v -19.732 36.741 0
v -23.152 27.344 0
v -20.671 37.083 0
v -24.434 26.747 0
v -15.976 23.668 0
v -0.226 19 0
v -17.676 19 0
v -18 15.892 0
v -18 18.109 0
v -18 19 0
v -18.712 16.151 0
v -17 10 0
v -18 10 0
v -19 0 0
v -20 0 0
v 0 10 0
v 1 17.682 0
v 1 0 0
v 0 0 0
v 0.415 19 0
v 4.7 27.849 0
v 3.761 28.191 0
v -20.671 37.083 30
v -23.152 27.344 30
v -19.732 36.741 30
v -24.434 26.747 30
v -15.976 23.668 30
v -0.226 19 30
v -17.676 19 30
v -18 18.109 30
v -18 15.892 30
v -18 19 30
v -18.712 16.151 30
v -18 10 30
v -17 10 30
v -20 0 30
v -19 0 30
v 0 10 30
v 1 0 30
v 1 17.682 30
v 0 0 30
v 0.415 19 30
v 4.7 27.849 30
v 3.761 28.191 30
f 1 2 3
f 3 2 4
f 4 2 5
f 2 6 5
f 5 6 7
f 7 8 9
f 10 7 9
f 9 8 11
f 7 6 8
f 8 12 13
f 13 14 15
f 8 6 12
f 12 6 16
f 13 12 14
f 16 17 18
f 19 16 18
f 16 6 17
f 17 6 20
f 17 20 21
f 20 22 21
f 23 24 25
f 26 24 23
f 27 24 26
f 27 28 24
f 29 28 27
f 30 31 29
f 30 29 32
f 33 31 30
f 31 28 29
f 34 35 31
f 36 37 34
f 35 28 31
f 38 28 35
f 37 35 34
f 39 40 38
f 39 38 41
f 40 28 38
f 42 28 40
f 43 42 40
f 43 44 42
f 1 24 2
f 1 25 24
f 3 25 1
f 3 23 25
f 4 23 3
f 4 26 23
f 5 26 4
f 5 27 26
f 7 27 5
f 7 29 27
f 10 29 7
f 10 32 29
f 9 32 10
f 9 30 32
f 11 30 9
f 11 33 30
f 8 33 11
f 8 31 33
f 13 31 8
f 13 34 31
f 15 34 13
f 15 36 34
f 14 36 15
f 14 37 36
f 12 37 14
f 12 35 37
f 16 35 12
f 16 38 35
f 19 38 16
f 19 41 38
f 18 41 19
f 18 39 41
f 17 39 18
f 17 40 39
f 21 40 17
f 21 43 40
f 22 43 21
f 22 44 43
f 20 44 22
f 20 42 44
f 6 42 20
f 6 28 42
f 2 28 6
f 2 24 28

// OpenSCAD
/*
The MIT License (MIT)

Copyright (c) 2020 Shinichi Ohki.

Permission is hereby granted, free of charge, to any person obtaining a copy
of this software and associated documentation files (the "Software"), to deal
in the Software without restriction, including without limitation the rights
to use, copy, modify, merge, publish, distribute, sublicense, and/or sell
copies of the Software, and to permit persons to whom the Software is
furnished to do so, subject to the following conditions:

The above copyright notice and this permission notice shall be included in
all copies or substantial portions of the Software.

THE SOFTWARE IS PROVIDED "AS IS", WITHOUT WARRANTY OF ANY KIND, EXPRESS OR
IMPLIED, INCLUDING BUT NOT LIMITED TO THE WARRANTIES OF MERCHANTABILITY,
FITNESS FOR A PARTICULAR PURPOSE AND NONINFRINGEMENT. IN NO EVENT SHALL THE
AUTHORS OR COPYRIGHT HOLDERS BE LIABLE FOR ANY CLAIM, DAMAGES OR OTHER
LIABILITY, WHETHER IN AN ACTION OF CONTRACT, TORT OR OTHERWISE, ARISING FROM,
OUT OF OR IN CONNECTION WITH THE SOFTWARE OR THE USE OR OTHER DEALINGS IN
THE SOFTWARE.
*/


linear_extrude(height = 30) {
  translate([0,0,0]) {
    square([1,19],center = false);
  }
  
  translate([-6.5,0,0]) {
    rotate([0,0,-20]) {
      translate([-26,19,0]) {
        translate([26,0,0]) {
          square([1,11],center = false);
        }
        square([27,1],center = false);
        square([1,11],center = false);
      }
        translate([-17,11,0]) {
          square([17,8],center = false);
      }
    }
  }

  *rotate([0,0,0]) {
    translate([-24,19,0]) {
      translate([24,0,0]) {
        square([1,11],center = false);
      }
      #square([25,1],center = false);
      square([1,11],center = false);
    }
  }
  
  
  translate([-17,10,0]) {
    square([17,9],center = false);
  }
    
  translate([-26,19,0]) {
    *square([1,11],center = false);
  }
  
  translate([-18,10,0]) {
    square([1,9],center = false);
  }
  
  polygon(points=[[-17,10],[-19,0],[-20,0],[-18,10]]);
}
